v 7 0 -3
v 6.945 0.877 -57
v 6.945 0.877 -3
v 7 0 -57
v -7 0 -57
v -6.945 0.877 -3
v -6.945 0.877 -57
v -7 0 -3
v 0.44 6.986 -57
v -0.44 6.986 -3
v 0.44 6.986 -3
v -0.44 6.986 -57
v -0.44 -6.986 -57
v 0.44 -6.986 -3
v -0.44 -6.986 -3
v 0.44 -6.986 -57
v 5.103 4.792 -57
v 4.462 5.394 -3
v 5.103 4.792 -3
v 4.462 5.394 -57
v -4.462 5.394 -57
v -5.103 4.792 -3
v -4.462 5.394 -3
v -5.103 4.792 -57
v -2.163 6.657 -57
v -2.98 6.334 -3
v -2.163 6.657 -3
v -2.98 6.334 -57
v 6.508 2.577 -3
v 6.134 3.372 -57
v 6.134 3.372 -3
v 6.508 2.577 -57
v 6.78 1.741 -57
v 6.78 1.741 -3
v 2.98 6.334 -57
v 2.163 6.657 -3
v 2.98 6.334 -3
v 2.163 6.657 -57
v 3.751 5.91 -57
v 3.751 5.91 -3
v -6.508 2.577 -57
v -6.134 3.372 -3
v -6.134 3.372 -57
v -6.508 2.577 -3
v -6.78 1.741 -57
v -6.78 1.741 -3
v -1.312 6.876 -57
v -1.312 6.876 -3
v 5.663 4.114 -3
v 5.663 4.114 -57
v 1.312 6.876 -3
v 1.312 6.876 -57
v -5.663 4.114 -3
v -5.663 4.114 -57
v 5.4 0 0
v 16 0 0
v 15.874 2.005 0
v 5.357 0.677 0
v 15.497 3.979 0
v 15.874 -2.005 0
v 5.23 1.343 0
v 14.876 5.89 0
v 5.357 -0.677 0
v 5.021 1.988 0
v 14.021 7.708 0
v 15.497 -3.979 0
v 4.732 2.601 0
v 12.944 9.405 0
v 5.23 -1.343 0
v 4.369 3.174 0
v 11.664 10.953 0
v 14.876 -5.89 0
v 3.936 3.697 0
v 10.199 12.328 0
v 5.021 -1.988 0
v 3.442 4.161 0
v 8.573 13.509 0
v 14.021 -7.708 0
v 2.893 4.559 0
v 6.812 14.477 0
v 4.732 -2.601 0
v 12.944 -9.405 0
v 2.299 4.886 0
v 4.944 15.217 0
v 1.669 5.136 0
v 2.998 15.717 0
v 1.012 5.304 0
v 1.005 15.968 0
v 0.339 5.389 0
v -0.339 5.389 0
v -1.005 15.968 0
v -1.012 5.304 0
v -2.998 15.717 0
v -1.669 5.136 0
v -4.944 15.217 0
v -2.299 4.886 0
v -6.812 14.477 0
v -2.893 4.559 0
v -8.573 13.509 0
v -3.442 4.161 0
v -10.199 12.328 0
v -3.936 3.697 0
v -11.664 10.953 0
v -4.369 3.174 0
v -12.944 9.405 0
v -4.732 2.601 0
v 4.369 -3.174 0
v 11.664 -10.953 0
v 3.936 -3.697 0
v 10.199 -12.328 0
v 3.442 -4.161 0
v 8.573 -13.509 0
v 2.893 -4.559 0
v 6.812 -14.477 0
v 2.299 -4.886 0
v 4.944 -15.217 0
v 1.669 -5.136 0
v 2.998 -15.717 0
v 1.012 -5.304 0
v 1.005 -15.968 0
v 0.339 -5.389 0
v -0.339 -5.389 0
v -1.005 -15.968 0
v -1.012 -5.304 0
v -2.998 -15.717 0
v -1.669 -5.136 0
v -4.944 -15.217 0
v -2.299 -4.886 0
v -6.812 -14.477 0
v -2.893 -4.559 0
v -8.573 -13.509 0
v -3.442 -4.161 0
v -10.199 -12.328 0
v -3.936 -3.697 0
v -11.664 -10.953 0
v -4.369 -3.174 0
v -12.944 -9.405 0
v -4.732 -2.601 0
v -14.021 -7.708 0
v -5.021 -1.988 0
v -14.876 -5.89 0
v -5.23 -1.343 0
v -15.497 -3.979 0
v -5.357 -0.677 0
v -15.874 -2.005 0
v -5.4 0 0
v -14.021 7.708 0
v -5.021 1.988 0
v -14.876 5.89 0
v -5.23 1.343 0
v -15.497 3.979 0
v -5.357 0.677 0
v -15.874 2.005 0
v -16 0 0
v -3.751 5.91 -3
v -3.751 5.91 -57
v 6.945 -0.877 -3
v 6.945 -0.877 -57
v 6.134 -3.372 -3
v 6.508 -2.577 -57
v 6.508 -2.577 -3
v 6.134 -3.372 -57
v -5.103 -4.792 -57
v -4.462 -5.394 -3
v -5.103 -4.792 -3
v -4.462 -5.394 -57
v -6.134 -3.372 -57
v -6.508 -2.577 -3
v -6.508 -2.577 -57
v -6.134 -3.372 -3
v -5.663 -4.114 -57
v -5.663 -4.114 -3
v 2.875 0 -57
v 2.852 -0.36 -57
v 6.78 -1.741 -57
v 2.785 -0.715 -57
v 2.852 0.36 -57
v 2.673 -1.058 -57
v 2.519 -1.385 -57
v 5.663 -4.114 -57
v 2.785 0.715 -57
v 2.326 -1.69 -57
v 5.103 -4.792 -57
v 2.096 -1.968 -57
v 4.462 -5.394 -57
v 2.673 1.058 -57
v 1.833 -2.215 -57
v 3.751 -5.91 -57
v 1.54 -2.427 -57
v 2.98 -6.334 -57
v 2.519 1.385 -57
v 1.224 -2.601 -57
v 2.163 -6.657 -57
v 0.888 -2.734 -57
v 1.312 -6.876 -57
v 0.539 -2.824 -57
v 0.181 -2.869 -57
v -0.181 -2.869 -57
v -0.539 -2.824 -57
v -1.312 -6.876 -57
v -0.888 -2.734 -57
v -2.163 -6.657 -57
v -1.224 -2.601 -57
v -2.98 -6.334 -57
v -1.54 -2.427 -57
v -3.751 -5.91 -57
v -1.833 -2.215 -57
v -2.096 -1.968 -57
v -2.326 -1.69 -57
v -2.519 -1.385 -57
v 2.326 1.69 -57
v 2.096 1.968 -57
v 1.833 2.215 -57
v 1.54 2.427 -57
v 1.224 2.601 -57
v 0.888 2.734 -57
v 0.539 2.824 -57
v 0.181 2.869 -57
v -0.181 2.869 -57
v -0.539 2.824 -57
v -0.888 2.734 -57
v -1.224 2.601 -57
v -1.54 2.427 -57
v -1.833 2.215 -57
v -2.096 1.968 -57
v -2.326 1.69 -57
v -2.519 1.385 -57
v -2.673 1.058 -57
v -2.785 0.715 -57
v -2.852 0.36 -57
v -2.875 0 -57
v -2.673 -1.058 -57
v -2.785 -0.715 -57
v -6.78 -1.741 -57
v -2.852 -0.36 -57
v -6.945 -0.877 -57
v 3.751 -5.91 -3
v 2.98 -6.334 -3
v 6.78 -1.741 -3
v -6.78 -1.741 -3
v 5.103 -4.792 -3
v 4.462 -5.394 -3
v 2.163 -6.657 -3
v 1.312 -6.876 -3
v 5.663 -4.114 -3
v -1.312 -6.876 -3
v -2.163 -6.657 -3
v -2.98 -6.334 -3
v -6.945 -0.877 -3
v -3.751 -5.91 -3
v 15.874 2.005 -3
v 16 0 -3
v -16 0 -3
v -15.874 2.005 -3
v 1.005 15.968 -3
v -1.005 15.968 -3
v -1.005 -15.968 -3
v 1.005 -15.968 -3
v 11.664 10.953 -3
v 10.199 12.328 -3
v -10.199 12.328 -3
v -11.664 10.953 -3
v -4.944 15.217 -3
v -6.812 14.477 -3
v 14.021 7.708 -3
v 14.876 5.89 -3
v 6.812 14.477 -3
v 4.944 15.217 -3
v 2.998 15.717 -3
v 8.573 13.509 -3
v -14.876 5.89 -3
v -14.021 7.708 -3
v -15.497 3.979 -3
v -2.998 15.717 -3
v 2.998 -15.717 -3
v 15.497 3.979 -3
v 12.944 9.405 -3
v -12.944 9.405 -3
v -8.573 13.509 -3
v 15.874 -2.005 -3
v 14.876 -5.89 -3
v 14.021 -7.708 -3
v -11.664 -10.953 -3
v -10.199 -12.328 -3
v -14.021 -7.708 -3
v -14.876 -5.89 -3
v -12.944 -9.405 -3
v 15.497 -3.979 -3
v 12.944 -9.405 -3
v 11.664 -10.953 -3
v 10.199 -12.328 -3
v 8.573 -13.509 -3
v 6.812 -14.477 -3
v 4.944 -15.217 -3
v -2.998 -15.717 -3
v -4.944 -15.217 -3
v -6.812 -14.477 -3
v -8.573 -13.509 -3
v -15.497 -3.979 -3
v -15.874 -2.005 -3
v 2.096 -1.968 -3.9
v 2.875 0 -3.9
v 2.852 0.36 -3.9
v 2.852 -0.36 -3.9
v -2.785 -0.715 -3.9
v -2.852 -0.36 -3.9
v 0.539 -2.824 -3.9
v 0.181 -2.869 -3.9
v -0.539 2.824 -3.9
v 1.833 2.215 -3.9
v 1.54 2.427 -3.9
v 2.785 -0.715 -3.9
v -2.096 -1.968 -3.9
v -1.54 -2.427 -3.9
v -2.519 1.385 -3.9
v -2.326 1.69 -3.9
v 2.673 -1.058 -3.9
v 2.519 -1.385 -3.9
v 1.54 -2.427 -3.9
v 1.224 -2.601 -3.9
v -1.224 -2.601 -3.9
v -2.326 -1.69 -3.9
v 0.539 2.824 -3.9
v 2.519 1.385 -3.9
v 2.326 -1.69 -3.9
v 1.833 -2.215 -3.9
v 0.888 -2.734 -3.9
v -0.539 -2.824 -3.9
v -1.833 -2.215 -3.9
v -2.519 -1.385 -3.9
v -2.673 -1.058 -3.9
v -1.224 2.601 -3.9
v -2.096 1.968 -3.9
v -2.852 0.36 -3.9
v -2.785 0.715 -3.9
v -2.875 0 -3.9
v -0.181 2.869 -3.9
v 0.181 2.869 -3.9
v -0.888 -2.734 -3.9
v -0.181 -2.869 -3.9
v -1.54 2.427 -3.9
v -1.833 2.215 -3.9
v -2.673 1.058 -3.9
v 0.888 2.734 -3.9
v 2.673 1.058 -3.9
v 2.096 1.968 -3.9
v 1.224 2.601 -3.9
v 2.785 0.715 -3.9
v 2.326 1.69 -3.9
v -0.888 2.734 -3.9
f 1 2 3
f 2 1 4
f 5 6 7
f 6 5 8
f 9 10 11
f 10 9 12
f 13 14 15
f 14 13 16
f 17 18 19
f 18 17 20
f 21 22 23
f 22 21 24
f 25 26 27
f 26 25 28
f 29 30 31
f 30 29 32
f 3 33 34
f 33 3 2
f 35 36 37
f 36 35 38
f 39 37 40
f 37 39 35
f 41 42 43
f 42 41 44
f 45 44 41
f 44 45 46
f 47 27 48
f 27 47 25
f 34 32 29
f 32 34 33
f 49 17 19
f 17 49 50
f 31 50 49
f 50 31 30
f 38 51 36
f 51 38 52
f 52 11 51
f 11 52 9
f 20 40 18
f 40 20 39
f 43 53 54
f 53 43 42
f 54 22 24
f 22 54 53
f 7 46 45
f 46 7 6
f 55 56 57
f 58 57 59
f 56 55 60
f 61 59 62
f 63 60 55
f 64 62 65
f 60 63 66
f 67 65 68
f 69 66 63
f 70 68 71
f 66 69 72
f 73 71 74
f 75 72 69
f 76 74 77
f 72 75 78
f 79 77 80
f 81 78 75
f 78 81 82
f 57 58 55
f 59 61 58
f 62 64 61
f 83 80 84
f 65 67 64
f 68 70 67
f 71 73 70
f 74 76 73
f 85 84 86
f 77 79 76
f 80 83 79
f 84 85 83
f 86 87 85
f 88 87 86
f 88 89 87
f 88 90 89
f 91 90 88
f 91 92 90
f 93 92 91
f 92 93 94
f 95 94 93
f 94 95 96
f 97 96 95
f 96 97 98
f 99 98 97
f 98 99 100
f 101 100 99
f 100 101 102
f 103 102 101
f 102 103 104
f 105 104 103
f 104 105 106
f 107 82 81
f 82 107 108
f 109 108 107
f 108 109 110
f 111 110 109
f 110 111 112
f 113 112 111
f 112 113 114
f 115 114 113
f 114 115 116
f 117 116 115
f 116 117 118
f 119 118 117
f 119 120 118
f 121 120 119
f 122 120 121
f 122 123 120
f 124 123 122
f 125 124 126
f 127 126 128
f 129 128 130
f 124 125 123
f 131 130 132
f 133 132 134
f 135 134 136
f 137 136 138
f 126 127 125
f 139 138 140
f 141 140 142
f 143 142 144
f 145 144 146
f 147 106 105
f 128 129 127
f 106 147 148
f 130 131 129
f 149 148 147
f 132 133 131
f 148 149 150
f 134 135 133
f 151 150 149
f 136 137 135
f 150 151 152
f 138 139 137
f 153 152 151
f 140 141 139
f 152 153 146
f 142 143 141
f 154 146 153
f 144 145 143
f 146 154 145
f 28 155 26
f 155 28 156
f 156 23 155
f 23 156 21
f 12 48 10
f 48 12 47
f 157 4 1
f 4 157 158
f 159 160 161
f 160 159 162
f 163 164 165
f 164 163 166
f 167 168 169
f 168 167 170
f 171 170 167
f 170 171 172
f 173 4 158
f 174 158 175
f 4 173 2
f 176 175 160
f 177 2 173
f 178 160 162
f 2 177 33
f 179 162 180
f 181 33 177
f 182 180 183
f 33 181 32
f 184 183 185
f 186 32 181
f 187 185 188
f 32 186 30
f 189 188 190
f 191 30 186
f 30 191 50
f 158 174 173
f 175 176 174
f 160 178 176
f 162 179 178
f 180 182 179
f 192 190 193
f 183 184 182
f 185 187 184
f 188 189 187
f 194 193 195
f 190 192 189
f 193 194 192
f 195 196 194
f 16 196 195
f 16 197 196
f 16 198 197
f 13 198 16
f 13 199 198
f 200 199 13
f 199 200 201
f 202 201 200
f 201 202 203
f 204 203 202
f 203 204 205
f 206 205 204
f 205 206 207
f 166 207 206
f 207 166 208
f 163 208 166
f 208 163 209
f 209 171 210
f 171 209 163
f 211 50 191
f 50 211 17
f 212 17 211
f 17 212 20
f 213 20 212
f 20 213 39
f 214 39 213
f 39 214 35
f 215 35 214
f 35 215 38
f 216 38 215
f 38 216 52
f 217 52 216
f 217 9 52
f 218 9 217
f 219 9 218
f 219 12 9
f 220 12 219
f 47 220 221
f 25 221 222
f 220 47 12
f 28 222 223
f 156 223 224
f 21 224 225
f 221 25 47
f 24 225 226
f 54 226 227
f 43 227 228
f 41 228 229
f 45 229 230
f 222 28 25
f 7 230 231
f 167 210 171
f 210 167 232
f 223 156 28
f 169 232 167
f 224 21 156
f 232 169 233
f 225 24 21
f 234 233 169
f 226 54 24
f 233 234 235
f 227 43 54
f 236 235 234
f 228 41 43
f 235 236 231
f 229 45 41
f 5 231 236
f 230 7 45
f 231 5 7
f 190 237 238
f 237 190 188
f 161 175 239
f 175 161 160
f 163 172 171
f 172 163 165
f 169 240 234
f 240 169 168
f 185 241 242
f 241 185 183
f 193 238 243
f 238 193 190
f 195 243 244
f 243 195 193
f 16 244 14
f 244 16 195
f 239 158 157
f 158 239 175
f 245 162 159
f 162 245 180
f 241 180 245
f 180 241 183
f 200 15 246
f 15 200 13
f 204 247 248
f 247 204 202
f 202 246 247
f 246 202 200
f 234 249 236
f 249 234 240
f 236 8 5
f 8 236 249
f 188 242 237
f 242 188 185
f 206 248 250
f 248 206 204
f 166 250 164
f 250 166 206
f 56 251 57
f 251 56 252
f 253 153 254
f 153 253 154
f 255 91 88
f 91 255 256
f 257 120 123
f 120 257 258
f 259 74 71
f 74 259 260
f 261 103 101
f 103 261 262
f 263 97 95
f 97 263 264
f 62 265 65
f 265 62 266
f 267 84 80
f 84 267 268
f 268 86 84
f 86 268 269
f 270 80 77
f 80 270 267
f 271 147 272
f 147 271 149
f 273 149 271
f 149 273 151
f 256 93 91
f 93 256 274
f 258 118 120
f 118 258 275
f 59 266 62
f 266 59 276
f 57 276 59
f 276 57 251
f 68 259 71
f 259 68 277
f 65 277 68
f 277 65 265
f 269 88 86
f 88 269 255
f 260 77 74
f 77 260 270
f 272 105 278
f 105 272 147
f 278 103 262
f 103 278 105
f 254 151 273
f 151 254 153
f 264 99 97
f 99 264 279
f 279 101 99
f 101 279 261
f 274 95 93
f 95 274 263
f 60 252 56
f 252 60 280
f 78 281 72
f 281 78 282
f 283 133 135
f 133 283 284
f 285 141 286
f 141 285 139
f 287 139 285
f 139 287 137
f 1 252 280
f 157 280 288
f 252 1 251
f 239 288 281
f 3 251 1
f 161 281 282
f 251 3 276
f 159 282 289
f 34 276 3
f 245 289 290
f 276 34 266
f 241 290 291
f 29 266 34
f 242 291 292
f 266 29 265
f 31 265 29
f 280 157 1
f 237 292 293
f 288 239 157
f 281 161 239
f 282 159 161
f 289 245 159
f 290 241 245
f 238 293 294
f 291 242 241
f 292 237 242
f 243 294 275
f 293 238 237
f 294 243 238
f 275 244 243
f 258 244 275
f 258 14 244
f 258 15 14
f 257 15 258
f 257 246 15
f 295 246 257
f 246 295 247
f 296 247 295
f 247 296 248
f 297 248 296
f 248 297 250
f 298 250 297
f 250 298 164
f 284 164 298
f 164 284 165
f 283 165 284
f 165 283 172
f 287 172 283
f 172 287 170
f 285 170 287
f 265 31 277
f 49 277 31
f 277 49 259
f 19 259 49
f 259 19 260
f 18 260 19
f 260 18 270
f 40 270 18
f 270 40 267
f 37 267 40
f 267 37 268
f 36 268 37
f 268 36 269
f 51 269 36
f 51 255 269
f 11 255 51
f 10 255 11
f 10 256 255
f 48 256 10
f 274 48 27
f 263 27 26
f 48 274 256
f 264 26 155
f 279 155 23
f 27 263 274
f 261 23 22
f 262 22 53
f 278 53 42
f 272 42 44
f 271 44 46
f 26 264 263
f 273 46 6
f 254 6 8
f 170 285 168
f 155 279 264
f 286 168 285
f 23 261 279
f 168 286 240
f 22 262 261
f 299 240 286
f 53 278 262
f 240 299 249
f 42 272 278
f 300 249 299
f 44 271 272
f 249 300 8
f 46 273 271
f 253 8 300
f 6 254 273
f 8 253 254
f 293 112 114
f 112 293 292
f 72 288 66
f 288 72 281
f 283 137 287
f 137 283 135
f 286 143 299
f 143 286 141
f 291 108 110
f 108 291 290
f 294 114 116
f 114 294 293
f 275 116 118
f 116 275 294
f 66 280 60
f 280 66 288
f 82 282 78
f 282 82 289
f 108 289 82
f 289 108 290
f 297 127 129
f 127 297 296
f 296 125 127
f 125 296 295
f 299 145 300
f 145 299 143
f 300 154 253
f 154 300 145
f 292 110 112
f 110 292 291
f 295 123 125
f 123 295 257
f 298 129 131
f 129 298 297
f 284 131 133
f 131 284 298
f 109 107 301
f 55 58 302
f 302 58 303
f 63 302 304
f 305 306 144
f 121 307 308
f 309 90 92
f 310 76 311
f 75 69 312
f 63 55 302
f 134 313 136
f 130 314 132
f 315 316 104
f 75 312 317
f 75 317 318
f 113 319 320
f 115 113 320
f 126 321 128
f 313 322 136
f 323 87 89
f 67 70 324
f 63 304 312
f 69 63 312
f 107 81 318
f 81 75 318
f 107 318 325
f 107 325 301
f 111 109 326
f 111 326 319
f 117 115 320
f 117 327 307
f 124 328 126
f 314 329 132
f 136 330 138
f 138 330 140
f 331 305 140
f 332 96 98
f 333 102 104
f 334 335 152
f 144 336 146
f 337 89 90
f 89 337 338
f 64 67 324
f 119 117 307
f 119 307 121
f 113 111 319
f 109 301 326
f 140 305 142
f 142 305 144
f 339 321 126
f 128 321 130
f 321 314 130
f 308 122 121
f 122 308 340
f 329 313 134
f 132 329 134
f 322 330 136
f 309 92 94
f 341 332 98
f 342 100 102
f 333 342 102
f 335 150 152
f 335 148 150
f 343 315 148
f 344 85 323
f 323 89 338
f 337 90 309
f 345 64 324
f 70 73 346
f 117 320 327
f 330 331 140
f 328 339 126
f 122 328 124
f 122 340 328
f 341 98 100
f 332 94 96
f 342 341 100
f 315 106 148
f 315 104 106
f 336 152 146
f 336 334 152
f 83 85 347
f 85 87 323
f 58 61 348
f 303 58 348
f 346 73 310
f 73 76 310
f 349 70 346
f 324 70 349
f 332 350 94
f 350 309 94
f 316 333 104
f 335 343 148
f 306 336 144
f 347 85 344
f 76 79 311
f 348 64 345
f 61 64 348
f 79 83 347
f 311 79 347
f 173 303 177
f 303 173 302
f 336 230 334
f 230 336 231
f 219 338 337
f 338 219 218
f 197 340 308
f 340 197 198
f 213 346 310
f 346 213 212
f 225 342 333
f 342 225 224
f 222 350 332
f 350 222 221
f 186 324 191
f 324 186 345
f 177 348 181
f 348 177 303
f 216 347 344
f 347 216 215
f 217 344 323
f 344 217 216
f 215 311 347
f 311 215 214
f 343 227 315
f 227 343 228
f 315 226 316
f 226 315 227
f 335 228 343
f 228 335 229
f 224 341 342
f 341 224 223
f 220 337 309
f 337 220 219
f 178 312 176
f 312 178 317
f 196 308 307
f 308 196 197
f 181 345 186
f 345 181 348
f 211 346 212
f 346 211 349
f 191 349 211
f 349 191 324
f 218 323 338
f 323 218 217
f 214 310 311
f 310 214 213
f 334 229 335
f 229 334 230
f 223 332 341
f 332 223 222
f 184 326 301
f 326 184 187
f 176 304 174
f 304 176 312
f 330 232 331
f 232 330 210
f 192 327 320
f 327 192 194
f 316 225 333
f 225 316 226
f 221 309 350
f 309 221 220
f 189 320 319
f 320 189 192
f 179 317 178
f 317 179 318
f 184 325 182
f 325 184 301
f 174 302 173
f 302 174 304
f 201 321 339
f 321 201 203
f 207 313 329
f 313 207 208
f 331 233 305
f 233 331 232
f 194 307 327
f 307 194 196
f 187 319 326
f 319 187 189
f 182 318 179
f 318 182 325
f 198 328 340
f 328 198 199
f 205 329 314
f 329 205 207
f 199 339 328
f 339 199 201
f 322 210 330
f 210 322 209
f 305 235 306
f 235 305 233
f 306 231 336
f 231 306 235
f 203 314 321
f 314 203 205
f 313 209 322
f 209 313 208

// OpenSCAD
$fn = 50;


difference() {
	union() {
		translate(v = [0, 0, -57.0000000000]) {
			cylinder(h = 57, r = 7.0000000000);
		}
		translate(v = [0, 0, -3.0000000000]) {
			cylinder(h = 3, r = 16.0000000000);
		}
	}
	union() {
		translate(v = [0, 0, 0]) {
			rotate(a = [0, 0, 0]) {
				difference() {
					union() {
						#translate(v = [0, 0, -57.0000000000]) {
							cylinder(h = 57, r = 2.6000000000);
						}
						#translate(v = [0, 0, -3.9000000000]) {
							cylinder(h = 3.9000000000, r1 = 2.8750000000, r2 = 5.4000000000);
						}
						#translate(v = [0, 0, -57.0000000000]) {
							cylinder(h = 57, r = 2.8750000000);
						}
						#translate(v = [0, 0, -57.0000000000]) {
							cylinder(h = 57, r = 2.6000000000);
						}
					}
					union();
				}
			}
		}
	}
}
